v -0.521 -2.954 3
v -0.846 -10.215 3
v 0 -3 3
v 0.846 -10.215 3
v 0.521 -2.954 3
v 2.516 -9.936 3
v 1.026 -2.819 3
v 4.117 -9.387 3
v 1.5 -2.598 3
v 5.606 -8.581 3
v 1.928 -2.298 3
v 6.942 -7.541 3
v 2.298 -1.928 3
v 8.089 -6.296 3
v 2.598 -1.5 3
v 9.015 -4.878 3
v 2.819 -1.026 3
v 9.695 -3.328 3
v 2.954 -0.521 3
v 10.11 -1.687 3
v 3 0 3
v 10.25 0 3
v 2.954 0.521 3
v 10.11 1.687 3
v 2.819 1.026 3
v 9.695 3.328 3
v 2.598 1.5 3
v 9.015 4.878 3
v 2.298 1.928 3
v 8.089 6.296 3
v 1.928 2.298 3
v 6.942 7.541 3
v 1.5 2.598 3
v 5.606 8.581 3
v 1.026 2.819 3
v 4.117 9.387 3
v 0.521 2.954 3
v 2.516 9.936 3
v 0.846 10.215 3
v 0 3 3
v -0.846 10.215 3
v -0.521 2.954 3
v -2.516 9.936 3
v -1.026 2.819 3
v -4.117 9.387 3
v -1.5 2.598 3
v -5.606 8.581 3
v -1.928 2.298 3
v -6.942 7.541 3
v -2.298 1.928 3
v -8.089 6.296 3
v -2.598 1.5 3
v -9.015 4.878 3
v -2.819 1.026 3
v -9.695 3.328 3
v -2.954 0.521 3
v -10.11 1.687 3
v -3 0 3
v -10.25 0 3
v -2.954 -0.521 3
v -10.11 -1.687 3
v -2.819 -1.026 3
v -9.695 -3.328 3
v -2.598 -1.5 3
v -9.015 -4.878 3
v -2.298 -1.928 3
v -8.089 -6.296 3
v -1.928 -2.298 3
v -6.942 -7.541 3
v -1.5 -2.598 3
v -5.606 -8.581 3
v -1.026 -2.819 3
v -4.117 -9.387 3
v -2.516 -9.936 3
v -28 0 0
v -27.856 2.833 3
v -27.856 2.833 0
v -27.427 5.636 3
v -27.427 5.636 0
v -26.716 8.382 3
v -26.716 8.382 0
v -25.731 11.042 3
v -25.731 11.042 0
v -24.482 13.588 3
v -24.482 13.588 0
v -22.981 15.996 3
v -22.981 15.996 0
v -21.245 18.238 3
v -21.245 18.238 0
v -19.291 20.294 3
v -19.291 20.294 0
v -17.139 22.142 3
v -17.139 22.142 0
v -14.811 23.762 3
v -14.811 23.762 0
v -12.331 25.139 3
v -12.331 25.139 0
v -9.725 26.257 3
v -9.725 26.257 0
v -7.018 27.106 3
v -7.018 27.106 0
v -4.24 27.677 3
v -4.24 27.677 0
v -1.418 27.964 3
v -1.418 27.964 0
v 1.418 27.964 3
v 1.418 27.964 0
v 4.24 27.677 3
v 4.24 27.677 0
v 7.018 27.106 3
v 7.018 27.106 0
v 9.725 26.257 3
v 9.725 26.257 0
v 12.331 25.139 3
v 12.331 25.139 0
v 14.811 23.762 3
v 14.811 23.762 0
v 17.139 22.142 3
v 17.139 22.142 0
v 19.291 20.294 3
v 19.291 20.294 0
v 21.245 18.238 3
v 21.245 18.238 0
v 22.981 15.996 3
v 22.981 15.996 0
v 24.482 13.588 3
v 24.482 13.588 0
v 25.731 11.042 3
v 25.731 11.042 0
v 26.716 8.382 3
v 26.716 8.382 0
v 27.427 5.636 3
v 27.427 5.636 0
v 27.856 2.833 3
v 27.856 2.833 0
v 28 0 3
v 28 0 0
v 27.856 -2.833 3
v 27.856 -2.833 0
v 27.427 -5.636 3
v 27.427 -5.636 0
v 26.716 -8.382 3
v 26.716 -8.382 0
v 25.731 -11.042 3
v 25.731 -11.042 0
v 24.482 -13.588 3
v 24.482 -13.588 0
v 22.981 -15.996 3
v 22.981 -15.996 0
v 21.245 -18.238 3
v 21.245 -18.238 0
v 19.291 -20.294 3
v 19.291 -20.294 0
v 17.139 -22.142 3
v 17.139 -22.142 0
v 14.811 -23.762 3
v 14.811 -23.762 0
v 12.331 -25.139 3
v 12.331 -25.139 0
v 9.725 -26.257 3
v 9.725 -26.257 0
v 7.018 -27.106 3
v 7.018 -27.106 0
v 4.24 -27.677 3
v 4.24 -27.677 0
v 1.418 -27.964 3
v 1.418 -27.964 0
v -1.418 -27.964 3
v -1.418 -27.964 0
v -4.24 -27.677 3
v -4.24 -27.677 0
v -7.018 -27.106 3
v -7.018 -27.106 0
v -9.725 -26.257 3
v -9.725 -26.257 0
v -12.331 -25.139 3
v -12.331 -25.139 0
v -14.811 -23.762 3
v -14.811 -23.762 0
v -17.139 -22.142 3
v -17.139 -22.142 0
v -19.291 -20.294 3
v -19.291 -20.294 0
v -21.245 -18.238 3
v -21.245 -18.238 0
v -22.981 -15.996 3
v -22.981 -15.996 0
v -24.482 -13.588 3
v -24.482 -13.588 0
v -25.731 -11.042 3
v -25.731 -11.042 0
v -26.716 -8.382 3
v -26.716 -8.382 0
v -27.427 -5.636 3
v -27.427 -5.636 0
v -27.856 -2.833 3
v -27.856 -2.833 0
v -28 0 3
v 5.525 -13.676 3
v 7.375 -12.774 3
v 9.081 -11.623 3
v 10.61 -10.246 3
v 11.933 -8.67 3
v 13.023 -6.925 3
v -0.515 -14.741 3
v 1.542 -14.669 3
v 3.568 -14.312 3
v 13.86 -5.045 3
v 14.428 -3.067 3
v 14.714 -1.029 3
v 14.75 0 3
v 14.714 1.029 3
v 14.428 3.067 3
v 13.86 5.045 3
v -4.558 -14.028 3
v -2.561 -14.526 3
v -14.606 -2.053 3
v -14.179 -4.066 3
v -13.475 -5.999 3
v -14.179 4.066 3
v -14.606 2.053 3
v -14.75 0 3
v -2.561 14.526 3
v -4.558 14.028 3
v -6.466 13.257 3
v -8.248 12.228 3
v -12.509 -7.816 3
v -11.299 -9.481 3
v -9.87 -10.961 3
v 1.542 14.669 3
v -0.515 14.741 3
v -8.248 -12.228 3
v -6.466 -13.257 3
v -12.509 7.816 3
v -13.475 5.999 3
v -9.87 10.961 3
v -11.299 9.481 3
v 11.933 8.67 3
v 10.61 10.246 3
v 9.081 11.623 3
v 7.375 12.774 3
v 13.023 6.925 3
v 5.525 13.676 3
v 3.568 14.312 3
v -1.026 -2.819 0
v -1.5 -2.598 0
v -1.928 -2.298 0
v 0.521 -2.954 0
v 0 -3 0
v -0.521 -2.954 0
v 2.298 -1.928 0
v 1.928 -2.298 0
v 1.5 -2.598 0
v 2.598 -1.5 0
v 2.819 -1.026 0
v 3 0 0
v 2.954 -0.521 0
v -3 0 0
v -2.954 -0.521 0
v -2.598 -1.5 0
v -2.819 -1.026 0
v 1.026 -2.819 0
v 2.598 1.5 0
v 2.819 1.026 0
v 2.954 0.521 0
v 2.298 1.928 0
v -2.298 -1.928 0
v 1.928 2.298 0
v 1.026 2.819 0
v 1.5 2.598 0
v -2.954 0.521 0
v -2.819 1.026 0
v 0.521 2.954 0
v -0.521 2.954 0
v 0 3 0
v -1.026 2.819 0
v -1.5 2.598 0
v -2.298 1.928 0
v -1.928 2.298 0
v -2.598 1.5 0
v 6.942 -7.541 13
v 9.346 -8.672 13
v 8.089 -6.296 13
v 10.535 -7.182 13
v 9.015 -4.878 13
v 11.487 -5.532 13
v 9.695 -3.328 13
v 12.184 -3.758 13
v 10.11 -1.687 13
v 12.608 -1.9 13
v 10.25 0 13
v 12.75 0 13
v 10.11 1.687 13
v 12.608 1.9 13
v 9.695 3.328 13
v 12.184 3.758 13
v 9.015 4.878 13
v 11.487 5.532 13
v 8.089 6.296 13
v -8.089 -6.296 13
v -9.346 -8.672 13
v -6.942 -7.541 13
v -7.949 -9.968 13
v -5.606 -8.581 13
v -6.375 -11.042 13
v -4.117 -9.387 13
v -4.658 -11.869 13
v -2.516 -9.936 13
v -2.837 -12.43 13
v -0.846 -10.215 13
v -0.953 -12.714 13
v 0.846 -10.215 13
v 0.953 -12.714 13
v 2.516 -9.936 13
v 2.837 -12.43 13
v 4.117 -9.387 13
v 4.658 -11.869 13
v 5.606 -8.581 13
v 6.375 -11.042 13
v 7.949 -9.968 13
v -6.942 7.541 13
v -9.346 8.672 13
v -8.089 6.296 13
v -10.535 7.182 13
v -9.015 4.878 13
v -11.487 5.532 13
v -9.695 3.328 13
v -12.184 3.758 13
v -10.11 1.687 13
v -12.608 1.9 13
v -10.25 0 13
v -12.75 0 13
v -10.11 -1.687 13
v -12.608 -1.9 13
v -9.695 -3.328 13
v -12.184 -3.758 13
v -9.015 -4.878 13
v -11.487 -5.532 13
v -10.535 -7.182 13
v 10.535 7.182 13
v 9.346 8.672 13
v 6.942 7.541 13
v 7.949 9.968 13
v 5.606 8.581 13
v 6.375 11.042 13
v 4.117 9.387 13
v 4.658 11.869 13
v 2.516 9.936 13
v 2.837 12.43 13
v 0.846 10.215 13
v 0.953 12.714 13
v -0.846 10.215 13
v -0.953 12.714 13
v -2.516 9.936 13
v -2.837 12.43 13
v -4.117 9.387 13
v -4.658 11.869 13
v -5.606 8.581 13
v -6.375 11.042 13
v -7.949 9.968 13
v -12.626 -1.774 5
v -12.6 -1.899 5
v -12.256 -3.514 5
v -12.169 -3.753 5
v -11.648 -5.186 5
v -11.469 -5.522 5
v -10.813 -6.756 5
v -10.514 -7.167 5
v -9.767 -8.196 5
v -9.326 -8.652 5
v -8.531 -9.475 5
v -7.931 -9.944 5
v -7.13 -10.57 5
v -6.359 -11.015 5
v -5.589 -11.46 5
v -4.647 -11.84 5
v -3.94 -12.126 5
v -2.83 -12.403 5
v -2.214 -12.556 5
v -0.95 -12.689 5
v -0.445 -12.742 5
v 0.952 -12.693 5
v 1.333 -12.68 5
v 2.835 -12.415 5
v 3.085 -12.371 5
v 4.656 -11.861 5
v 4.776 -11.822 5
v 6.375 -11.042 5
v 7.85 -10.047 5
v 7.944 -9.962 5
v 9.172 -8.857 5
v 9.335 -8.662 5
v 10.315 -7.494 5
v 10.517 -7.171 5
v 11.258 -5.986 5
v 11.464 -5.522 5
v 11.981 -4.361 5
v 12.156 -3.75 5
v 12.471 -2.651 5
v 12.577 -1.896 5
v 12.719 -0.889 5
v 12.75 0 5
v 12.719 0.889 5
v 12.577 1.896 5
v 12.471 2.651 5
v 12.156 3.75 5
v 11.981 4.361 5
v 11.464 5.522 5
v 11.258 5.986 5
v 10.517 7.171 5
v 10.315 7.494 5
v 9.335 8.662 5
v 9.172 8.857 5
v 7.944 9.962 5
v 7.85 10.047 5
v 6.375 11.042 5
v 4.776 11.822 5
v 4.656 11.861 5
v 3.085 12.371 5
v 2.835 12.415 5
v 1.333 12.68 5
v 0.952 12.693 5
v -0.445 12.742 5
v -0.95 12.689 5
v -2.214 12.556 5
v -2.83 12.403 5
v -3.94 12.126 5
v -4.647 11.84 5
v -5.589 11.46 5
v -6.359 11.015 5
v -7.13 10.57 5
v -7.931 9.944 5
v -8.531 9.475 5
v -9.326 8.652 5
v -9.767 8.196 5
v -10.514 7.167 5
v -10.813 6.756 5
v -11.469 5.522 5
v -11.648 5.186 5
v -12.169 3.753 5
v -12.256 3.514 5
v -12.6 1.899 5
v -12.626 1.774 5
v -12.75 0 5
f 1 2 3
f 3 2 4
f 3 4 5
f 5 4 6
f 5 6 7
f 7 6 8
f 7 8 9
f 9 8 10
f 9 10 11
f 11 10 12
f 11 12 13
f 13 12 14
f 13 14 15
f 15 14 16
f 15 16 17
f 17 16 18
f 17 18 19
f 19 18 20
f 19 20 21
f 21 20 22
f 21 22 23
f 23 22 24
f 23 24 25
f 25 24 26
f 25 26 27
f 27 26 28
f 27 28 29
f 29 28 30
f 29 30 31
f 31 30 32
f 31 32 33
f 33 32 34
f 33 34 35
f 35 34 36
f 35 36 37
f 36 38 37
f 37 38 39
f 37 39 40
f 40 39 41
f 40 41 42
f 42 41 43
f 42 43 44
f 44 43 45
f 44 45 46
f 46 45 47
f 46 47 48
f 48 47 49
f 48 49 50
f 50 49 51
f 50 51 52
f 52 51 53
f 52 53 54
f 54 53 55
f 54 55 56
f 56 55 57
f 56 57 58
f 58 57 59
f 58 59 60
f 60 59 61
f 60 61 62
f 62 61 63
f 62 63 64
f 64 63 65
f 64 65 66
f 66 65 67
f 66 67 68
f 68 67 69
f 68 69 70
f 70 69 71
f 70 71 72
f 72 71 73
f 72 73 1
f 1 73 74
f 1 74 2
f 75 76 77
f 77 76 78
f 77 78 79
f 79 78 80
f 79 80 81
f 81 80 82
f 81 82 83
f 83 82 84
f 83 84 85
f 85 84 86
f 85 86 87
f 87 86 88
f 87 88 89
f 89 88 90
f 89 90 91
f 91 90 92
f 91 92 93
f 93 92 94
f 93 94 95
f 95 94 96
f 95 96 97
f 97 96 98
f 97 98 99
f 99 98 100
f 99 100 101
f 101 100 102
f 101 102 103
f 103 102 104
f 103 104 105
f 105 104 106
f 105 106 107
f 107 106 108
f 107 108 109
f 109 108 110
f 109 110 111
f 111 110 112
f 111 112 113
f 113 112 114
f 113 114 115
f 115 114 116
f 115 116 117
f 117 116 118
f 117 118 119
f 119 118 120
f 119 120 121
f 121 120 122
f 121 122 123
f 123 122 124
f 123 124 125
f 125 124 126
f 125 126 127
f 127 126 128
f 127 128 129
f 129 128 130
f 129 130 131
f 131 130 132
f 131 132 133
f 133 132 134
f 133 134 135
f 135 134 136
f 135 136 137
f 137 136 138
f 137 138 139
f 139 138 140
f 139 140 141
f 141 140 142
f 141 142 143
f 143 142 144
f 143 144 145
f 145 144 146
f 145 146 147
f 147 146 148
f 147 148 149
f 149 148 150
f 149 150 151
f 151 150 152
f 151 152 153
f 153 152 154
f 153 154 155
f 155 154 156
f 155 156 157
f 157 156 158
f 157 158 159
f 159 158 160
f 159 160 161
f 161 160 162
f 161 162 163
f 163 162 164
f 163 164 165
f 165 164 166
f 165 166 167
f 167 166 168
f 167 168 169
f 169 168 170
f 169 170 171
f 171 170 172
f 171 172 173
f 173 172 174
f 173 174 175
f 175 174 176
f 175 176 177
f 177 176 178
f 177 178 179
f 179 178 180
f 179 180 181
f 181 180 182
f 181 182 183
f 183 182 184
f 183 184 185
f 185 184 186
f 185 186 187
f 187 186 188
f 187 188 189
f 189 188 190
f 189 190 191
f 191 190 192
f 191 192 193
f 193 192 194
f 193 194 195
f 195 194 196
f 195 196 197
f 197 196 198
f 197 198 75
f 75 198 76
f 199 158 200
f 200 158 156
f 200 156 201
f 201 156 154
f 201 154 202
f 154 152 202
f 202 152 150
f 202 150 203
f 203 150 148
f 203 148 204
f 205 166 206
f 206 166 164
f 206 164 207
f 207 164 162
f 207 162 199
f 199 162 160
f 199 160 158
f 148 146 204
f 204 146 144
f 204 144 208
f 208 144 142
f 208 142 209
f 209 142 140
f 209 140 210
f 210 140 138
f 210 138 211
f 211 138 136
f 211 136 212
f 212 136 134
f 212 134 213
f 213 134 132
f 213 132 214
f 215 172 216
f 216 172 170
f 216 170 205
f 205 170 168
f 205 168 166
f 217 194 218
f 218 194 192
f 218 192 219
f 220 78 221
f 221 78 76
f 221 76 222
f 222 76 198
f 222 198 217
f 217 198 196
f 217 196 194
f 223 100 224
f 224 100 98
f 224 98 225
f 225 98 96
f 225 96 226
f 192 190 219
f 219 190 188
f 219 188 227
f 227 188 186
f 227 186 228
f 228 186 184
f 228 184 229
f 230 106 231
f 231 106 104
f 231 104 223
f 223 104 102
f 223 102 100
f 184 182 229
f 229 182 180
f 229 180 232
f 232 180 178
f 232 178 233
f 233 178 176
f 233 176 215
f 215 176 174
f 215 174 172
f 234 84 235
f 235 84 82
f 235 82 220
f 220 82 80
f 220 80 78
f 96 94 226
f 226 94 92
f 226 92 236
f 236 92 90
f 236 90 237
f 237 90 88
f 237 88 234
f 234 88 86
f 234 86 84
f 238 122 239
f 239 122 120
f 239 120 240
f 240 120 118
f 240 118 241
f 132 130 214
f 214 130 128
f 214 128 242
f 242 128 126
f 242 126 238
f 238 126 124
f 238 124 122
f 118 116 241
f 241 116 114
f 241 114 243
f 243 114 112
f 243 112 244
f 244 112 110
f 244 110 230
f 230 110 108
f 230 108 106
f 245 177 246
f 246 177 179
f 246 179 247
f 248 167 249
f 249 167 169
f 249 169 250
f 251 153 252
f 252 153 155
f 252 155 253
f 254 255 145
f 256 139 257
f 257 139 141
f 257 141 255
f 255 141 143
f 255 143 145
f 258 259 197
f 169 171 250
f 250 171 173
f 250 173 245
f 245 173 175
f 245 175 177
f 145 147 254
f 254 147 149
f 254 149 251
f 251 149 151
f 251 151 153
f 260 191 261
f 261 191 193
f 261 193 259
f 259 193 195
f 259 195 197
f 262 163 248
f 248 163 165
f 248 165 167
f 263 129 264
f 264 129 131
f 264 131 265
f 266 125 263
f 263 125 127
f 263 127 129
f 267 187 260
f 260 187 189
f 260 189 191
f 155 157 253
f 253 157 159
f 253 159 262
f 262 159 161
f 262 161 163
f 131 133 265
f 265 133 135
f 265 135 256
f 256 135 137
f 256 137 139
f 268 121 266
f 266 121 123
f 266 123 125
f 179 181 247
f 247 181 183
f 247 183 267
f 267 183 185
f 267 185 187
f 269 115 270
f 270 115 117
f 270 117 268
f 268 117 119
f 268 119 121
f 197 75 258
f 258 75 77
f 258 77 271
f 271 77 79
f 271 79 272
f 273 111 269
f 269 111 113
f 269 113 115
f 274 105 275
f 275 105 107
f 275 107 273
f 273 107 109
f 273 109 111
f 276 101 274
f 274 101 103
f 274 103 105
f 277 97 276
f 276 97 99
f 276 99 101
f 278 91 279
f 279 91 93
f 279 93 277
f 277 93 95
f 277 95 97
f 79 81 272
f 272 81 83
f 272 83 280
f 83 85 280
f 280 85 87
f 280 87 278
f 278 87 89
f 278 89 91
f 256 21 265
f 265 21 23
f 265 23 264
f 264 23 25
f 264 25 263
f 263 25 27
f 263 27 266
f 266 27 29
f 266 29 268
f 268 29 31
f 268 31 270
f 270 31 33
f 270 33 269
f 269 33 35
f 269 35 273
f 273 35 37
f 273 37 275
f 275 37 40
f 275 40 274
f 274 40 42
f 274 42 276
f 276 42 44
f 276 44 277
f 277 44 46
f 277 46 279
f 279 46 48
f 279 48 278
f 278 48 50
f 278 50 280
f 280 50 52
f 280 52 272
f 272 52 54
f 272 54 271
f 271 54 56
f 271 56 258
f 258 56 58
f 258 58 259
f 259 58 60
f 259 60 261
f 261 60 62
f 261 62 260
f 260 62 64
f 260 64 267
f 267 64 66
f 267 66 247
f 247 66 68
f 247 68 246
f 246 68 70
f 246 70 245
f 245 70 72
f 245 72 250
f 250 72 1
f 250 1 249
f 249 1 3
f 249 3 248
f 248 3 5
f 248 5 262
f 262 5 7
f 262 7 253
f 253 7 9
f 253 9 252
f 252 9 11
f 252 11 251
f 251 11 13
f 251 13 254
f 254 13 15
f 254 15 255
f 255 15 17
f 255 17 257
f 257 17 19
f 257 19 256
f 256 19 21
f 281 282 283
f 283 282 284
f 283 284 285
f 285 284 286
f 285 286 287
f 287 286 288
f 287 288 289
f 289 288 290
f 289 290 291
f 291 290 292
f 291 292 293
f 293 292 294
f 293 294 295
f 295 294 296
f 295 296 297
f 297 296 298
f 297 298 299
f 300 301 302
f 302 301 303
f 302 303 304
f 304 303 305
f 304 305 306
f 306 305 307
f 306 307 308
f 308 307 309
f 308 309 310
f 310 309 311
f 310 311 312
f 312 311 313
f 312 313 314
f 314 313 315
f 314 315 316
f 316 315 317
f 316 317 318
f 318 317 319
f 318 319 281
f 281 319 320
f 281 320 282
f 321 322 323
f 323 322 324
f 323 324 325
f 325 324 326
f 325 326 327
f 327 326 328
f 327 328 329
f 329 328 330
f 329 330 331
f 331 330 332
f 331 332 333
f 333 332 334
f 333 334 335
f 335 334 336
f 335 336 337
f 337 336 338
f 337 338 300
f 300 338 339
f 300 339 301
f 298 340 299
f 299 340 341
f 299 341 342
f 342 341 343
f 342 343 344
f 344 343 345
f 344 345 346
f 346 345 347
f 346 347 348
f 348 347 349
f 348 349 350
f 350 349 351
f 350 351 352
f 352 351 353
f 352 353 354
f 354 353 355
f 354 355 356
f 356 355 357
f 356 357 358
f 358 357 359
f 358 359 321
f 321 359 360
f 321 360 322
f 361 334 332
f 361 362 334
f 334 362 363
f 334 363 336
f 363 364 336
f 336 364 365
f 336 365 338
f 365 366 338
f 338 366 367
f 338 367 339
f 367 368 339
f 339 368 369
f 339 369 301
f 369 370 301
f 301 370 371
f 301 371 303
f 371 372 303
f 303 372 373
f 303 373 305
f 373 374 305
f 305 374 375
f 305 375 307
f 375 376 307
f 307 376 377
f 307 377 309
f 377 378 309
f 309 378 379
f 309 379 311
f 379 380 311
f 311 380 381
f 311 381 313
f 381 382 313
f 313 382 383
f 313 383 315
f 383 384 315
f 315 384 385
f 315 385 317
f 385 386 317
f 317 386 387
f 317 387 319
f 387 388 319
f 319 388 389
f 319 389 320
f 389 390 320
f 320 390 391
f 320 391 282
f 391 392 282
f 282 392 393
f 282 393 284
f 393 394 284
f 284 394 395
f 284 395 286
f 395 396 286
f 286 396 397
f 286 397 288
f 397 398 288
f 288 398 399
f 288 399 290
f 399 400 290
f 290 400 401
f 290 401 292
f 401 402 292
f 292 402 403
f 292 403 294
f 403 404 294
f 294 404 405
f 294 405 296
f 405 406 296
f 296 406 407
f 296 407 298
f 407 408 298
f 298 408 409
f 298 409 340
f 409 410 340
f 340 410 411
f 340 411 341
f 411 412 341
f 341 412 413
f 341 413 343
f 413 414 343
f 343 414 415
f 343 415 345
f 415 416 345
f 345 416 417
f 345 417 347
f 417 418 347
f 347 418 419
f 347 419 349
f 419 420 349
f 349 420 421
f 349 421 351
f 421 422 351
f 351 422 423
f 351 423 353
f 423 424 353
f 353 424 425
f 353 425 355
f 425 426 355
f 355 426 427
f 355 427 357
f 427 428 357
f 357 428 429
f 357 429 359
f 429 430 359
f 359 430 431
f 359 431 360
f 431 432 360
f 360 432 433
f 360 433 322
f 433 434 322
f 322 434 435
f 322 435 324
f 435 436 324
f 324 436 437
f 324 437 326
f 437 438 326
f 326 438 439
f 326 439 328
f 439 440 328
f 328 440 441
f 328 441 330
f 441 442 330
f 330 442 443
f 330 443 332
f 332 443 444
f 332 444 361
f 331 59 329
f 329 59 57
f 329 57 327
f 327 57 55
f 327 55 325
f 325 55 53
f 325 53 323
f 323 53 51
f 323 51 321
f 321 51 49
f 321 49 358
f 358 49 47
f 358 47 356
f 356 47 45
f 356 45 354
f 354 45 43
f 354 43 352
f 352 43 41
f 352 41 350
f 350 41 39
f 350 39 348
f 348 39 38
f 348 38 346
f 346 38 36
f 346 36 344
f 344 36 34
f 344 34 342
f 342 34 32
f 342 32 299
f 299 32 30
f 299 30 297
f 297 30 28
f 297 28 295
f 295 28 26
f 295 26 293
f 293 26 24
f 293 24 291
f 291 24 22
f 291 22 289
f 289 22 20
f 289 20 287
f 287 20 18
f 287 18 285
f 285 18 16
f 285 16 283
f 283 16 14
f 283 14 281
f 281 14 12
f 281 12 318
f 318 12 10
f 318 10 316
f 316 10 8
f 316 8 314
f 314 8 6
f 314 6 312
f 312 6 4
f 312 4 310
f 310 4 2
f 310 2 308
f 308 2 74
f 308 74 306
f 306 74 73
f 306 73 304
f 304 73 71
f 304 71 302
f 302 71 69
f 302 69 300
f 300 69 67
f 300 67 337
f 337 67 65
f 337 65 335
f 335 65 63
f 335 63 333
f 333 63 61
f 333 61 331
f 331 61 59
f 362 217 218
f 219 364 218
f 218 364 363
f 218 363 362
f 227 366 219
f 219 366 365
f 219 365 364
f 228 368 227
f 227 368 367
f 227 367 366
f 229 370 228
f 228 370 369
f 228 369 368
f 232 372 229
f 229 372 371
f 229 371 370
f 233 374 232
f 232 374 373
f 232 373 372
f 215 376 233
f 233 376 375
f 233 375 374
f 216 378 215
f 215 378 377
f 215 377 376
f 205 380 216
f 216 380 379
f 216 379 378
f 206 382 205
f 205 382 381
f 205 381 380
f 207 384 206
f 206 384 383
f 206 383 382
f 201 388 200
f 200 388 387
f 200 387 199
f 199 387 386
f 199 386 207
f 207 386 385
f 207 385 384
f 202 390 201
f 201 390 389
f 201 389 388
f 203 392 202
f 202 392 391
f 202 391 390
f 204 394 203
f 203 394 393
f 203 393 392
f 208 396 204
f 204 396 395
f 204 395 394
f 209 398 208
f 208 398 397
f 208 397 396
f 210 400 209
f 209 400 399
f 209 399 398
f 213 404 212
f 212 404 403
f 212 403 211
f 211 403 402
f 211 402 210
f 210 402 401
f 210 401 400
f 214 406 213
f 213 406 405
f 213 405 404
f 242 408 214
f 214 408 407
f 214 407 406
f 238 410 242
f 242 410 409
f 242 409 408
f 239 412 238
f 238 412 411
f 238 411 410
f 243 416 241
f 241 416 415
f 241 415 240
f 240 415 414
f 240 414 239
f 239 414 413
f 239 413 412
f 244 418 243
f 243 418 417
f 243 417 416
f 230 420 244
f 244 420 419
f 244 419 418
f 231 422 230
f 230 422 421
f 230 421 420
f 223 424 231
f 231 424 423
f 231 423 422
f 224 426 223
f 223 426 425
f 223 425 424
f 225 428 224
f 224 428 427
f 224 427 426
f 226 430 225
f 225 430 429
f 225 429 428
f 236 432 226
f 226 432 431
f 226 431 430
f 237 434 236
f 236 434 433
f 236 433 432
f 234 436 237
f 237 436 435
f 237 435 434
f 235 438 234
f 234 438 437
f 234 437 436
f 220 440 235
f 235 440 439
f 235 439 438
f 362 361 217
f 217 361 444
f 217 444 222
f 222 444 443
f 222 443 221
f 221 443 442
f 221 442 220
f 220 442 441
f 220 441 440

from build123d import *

# Parameters (mm, degrees)
ESQUISSE1_R                  = 28
BOSS_EXTRU_1_DEPTH           = 3
ENL_V_MAT_EXTRU_1_DEPTH      = 40.711459303
ENL_V_MAT_EXTRU_1_DEPTH_BACK = 40.711459303
ESQUISSE2_R                  = 3
ESQUISSE3_R                  = 12.75
ESQUISSE3_R_2                = 10.25
BOSS_EXTRU_2_DEPTH           = 10
CHANFREIN1_SIZE              = 2


with BuildPart() as part:
    # Esquisse1 → Boss.-Extru.1 (new body)
    with BuildSketch(Plane.XY):
        Circle(ESQUISSE1_R)
    extrude(amount=BOSS_EXTRU_1_DEPTH)

    # Esquisse2 → Enlèv. mat.-Extru.1 (cut, two sides: drawn at the far end of the back side and taken through both)
    with BuildSketch(Plane.XY.offset(3).offset(-ENL_V_MAT_EXTRU_1_DEPTH_BACK)):
        Circle(ESQUISSE2_R)
    extrude(amount=ENL_V_MAT_EXTRU_1_DEPTH + ENL_V_MAT_EXTRU_1_DEPTH_BACK, mode=Mode.SUBTRACT)

    # Esquisse3 → Boss.-Extru.2 (add)
    with BuildSketch(Plane.XY.offset(3)):
        Circle(ESQUISSE3_R)
        Circle(ESQUISSE3_R_2, mode=Mode.SUBTRACT)
    extrude(amount=BOSS_EXTRU_2_DEPTH)

    # Chanfrein1
    chanfrein1_edges = [part.edges().sort_by_distance(p)[0] for p in [
        (-12.75, 0, 3),
    ]]
    chamfer(chanfrein1_edges, length=CHANFREIN1_SIZE)


solid = part.part
